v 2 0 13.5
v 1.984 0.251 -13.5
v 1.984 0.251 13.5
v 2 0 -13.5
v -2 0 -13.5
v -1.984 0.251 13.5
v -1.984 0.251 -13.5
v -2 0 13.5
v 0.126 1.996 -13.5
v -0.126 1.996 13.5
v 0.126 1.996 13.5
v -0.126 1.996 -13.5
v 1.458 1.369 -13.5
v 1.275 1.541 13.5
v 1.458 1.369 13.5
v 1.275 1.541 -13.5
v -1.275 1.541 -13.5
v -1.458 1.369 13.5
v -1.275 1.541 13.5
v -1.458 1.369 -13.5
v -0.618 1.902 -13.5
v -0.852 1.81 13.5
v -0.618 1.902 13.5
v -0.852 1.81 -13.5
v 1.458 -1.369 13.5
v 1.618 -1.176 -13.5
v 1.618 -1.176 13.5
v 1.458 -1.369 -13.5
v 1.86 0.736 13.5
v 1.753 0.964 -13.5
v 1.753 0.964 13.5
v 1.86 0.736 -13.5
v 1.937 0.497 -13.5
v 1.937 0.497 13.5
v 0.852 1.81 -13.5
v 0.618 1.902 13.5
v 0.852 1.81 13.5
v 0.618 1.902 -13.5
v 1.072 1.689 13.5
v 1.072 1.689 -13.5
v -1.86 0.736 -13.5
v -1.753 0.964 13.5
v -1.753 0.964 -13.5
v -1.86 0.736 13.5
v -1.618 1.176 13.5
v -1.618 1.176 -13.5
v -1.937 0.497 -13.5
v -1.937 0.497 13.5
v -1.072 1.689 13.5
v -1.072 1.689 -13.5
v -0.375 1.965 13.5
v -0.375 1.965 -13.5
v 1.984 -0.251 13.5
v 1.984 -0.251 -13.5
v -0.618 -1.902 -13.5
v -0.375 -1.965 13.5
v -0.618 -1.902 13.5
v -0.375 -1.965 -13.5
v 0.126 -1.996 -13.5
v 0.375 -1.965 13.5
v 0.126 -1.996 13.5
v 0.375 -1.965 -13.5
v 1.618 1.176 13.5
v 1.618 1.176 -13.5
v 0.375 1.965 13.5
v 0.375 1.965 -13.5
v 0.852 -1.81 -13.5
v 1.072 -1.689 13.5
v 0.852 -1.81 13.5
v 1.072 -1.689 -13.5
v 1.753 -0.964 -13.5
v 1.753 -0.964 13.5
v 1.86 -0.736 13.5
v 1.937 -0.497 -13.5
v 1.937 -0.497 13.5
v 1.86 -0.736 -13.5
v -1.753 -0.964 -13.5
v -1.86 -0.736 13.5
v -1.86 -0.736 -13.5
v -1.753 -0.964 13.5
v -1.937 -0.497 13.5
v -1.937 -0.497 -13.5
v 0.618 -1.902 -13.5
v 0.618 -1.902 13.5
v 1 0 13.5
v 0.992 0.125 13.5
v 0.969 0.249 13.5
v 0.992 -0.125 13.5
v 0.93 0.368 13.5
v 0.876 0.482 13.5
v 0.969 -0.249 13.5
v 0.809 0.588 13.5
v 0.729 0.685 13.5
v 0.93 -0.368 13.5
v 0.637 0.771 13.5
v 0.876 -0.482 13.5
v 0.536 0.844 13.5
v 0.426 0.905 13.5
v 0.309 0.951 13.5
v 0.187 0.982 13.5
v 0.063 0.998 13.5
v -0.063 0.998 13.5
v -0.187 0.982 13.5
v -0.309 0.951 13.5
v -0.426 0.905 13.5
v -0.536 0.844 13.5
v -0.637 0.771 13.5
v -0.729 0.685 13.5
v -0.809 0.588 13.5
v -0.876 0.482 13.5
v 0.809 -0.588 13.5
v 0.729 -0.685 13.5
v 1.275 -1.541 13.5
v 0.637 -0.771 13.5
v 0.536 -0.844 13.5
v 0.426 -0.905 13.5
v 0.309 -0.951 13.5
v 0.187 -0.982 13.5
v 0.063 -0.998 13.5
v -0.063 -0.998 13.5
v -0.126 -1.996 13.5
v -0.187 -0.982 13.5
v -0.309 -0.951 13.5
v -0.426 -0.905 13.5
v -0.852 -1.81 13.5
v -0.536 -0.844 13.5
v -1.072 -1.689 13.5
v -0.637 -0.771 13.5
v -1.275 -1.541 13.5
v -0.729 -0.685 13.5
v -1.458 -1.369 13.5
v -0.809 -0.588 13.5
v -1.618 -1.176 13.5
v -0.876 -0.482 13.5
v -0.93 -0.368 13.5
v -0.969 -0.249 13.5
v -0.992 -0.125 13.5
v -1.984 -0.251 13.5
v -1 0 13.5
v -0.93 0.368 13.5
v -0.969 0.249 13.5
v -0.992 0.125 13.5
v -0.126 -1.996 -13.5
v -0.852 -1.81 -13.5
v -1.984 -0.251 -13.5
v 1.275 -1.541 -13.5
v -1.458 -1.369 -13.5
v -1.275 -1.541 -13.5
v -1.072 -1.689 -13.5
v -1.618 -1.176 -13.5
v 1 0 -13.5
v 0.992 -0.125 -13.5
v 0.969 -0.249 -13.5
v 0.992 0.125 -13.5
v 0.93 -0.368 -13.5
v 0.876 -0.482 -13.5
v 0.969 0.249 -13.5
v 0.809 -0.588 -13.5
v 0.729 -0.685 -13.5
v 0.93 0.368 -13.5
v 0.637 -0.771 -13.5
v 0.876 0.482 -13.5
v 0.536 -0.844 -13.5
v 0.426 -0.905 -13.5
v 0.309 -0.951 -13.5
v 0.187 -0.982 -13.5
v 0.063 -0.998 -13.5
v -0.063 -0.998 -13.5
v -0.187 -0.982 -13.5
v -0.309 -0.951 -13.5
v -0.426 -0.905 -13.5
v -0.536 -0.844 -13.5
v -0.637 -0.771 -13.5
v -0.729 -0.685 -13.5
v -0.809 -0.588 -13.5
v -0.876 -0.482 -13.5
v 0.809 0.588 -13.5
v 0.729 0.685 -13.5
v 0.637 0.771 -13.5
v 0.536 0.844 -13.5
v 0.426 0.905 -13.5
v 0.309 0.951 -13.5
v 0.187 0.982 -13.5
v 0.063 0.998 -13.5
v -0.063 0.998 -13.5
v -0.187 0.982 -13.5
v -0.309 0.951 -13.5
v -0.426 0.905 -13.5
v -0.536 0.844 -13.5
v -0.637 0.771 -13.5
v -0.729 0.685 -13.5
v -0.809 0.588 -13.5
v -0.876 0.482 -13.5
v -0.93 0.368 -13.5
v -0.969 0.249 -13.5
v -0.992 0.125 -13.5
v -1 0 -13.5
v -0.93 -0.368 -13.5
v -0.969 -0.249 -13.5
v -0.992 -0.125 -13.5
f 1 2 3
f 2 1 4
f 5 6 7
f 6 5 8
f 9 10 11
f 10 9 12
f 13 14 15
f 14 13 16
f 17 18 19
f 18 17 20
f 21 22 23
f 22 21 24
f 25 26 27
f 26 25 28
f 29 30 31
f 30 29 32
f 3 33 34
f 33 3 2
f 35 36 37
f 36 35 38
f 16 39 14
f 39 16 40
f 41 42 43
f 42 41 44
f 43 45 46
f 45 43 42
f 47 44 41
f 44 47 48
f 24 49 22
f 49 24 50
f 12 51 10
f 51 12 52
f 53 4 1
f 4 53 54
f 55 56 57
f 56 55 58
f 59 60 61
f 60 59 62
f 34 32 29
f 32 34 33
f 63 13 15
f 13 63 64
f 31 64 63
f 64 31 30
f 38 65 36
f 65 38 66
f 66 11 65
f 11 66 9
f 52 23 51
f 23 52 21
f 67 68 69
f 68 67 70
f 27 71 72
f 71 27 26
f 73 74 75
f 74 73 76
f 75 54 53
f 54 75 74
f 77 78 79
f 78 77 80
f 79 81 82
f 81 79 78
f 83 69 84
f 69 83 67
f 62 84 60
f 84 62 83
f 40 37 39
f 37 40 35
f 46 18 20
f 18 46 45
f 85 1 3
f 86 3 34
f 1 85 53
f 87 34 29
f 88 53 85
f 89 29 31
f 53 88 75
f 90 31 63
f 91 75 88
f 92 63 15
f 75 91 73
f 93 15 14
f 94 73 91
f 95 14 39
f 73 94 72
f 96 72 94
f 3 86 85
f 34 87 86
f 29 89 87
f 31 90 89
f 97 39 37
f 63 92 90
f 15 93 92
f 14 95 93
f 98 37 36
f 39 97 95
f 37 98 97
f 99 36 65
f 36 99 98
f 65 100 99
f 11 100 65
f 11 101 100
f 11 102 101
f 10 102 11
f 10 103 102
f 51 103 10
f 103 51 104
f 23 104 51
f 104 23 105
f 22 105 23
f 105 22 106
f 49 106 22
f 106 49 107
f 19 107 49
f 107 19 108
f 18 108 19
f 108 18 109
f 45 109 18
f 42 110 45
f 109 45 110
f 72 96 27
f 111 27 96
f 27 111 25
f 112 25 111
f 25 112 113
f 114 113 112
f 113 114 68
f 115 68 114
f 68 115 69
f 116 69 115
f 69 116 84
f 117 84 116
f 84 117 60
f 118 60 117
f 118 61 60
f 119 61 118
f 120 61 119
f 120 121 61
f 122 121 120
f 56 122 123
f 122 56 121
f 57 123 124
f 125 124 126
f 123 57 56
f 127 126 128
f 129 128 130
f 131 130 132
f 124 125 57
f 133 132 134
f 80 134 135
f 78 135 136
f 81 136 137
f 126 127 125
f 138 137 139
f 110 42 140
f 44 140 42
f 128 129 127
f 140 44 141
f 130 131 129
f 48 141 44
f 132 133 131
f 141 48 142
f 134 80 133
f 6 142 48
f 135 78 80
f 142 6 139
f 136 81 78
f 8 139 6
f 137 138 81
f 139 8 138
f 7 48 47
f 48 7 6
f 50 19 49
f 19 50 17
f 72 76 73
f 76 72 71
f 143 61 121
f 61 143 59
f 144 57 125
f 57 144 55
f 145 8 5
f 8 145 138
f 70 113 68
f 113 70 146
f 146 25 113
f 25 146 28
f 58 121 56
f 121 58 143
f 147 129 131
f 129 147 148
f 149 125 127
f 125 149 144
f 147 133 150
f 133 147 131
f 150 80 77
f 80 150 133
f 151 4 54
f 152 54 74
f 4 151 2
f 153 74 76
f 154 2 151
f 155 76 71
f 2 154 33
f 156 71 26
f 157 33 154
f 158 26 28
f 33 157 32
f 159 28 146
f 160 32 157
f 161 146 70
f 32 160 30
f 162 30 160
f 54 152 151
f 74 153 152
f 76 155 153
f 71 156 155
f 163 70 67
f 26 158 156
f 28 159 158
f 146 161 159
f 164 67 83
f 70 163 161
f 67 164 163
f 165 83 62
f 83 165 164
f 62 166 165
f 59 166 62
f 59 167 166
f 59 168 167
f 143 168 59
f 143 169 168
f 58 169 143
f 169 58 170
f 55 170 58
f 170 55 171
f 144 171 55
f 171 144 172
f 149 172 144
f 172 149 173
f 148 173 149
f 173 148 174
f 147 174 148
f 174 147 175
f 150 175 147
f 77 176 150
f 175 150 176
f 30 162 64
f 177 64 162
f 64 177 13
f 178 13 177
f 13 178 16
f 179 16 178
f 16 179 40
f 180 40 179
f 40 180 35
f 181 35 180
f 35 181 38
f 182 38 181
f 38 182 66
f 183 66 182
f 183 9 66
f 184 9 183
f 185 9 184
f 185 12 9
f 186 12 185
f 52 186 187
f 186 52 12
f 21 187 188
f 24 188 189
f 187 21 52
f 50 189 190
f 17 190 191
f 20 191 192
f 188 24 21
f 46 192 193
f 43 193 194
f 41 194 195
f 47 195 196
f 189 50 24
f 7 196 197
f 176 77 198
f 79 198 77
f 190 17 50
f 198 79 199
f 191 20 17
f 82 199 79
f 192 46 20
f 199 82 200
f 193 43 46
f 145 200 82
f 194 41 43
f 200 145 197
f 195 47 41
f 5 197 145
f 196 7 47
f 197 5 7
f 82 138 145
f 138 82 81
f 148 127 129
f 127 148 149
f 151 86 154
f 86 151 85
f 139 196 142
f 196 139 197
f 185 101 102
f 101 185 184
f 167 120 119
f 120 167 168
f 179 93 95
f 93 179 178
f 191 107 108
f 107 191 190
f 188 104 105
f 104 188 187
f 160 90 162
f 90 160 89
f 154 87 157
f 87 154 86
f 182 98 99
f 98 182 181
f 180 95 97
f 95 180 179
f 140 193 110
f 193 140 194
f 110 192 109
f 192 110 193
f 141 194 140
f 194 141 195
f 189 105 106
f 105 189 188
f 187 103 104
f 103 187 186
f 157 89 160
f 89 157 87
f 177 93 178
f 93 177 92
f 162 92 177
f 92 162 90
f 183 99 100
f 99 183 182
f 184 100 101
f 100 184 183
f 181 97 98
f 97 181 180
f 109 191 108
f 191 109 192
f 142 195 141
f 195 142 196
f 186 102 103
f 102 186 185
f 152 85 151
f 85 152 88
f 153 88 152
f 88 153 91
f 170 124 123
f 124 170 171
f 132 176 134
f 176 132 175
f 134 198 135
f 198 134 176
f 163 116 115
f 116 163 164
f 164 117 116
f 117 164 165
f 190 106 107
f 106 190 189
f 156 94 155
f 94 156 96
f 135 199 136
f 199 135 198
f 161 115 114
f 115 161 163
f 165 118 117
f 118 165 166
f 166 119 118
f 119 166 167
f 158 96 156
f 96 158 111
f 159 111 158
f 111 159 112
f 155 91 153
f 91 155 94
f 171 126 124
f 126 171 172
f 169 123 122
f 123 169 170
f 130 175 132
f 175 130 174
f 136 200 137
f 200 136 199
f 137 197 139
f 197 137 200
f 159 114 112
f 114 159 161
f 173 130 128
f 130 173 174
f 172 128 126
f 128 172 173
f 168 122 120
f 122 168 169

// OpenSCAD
$fn = 50;


difference() {
	union() {
		translate(v = [0, 0, -13.5000000000]) {
			cylinder(h = 27, r = 2.0000000000);
		}
	}
	union() {
		translate(v = [0, 0, -100.0000000000]) {
			cylinder(h = 200, r = 1.0000000000);
		}
	}
}
